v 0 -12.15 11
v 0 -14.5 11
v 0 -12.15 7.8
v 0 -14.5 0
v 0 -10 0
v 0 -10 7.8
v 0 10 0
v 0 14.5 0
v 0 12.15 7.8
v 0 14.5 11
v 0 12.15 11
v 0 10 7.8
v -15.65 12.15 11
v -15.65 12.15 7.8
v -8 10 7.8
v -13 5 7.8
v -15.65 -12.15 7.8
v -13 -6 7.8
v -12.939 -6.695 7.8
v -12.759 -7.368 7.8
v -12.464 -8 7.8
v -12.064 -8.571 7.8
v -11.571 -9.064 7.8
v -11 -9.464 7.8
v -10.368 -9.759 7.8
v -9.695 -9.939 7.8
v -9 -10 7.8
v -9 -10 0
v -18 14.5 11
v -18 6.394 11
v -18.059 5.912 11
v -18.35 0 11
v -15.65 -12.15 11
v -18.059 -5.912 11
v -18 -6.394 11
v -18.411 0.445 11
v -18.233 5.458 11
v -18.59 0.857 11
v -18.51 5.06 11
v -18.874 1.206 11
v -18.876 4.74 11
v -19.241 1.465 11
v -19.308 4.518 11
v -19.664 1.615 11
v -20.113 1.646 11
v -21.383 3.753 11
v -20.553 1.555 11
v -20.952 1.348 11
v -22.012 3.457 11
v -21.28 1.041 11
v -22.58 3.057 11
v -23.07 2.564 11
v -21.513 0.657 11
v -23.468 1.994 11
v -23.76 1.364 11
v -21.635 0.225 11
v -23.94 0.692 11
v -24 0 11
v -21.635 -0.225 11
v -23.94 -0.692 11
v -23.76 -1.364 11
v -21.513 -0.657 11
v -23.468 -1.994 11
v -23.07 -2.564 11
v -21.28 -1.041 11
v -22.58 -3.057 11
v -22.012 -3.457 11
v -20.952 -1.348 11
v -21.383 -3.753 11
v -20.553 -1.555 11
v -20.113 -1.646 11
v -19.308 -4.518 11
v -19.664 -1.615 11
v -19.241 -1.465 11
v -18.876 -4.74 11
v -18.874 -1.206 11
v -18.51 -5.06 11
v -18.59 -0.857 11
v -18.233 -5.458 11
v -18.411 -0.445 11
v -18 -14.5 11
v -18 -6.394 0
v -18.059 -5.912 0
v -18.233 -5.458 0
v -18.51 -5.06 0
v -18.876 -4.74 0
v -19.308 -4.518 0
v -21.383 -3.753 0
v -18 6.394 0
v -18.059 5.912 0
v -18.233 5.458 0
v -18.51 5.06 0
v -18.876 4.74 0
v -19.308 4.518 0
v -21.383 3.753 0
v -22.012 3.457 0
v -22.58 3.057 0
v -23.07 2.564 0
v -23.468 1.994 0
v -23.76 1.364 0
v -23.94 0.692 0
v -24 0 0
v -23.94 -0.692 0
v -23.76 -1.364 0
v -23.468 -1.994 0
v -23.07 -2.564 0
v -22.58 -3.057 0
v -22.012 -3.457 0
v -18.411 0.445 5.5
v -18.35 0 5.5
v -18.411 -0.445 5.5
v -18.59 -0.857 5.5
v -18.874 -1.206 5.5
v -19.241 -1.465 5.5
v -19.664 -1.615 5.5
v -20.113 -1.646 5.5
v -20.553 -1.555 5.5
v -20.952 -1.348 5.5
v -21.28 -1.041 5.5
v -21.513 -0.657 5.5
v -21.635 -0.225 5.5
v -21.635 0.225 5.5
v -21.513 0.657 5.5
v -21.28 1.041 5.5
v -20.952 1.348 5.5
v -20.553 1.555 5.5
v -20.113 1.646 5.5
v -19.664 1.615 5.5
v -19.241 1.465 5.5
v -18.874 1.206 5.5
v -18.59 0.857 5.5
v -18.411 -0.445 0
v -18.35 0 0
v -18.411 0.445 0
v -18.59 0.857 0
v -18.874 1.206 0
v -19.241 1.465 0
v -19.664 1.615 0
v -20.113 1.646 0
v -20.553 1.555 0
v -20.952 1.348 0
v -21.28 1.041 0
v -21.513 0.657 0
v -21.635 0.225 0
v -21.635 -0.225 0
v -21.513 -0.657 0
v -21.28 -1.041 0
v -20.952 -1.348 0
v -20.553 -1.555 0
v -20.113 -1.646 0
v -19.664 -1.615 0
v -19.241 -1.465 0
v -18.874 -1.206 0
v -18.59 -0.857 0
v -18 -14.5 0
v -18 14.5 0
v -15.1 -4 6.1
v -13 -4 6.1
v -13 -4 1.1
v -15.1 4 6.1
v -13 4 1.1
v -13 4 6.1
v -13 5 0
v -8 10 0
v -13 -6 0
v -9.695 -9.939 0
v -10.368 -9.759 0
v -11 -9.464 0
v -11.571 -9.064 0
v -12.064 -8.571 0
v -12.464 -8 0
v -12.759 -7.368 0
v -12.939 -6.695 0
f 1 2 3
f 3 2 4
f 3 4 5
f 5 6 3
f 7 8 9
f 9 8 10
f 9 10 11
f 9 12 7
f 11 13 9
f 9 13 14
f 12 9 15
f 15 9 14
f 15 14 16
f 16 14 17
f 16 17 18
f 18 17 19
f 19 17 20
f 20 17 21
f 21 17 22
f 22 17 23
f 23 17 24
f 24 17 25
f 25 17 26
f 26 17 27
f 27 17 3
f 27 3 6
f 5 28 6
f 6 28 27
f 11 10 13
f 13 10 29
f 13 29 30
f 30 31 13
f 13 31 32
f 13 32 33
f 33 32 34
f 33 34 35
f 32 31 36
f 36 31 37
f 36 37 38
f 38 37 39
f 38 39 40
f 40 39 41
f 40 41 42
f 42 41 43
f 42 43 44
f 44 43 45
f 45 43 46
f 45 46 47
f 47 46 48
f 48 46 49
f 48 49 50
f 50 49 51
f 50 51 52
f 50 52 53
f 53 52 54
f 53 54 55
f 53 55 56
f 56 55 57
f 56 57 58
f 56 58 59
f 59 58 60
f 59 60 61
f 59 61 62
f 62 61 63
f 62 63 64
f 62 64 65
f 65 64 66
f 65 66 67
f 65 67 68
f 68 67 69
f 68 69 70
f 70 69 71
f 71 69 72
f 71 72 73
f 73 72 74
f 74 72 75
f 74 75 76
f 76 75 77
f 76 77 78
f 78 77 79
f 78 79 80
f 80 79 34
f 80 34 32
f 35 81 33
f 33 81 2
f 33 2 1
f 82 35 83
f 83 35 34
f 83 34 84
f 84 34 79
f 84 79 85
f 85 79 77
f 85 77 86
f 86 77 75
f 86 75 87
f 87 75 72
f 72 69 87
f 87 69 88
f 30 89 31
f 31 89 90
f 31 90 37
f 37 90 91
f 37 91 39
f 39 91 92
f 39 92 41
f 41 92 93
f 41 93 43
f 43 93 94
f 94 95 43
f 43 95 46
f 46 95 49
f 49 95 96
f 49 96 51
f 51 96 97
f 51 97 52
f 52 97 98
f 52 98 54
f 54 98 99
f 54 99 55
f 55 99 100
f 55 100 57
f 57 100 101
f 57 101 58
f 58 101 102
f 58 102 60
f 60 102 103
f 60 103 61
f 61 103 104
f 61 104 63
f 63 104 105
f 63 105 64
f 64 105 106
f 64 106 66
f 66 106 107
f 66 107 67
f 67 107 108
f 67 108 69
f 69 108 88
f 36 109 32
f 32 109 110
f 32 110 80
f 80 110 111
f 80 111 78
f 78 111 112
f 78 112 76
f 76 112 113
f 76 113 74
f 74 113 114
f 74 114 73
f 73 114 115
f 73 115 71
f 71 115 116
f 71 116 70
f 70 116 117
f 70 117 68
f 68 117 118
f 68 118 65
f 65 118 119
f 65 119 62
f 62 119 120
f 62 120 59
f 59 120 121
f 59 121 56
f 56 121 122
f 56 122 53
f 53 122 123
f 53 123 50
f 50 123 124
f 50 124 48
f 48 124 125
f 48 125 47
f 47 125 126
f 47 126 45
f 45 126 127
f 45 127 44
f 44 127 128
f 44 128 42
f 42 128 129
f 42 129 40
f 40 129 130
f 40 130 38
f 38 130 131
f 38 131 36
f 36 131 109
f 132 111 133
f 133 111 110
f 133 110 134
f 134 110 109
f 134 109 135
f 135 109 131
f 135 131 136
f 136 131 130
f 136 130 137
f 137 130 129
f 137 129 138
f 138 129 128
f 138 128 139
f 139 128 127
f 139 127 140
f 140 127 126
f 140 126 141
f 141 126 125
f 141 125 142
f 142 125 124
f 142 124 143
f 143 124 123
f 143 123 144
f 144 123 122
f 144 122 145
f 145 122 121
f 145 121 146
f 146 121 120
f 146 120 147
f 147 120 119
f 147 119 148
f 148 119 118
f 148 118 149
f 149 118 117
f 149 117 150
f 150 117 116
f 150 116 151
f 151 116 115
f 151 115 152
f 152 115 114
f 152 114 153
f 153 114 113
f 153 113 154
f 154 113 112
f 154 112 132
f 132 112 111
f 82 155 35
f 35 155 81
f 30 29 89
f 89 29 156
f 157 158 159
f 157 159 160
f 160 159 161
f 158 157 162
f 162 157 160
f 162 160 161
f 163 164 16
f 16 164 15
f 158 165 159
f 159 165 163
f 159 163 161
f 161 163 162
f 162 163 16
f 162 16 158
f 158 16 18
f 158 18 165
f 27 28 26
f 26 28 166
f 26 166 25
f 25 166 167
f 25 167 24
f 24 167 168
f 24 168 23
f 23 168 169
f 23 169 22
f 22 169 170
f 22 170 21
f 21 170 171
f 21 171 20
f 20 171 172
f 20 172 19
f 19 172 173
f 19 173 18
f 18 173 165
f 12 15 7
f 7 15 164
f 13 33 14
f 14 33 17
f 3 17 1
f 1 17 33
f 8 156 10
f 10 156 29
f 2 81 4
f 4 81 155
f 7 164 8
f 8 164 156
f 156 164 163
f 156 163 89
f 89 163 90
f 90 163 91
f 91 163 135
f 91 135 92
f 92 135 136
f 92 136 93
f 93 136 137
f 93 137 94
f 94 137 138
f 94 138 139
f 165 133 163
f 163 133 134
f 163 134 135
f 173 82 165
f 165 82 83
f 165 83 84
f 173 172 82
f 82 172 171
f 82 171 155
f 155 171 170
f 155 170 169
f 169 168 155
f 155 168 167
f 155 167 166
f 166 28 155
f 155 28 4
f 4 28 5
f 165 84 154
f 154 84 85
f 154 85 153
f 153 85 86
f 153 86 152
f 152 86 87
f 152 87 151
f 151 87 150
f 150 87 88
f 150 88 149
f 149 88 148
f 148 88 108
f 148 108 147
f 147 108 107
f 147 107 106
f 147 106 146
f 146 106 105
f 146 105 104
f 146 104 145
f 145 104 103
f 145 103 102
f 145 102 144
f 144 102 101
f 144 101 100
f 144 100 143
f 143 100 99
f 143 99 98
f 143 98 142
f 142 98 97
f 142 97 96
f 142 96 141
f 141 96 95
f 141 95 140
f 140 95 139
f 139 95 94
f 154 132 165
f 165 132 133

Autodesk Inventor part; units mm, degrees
ref_plane "YZ Plane" through (0, 0, 0) normal (1, 0, 0) x (0, 1, 0)
ref_plane "XZ Plane" through (0, 0, 0) normal (0, 1, 0) x (-1, 0, 0)
ref_plane "XY Plane" through (0, 0, 0) normal (0, 0, 1) x (1, 0, 0)
sketch "Sketch2" plane through (0, 0, 0) normal (0, 0, 1) x (1, 0, 0)
  line L0 (-18, 14.5) -> (18, 14.5)
  line L1 (18, 14.5) -> (18, -14.5)
  line L2 (18, -14.5) -> (-18, -14.5)
  line L3 (-18, -14.5) -> (-18, 14.5)
  line L4 (-18, 14.5) -> (18, -14.5) construction
  line L5 (18, 14.5) -> (-18, -14.5) construction
  point P0 (0, 0)
  dimension "d0" = 29
  dimension "d1" = 36
extrude "Extrusion1" add sketch "Sketch2" along normal blind 11
sketch "Sketch3" plane through (0, 0, 11) normal (0, 0, 1) x (1, 0, 0)
  line L0 (-15.65, 12.15) -> (15.65, 12.15)
  line L1 (15.65, 12.15) -> (15.65, -12.15)
  line L2 (15.65, -12.15) -> (-15.65, -12.15)
  line L3 (-15.65, -12.15) -> (-15.65, 12.15)
  line L4 (-15.65, 12.15) -> (15.65, -12.15) construction
  line L5 (15.65, 12.15) -> (-15.65, -12.15) construction
  point P0 (0, 0)
  dimension "d4" = 31.3
  dimension "d5" = 24.3
extrude "Extrusion2" cut sketch "Sketch3" against normal blind 3.2
sketch "Sketch4" plane through (0, 0, 7.8) normal (0, 0, 1) x (1, 0, 0)
  line L0 (-8, 10) -> (8, 10)
  line L1 (13, 5) -> (13, -6)
  line L2 (9, -10) -> (-9, -10)
  line L3 (-13, -6) -> (-13, 5)
  line L4 (-13, 10) -> (13, -10) construction
  line L5 (13, 10) -> (-13, -10) construction
  line L6 (-13, 5) -> (-8, 10)
  line L7 (8, 10) -> (13, 5)
  arc A0 (-13, -6) -> (-9, -10) centre (-9, -6) ccw
  arc A1 (9, -10) -> (13, -6) centre (9, -6) ccw
  point P0 (0, 0)
  point P1 (-13, -4)
  point P2 (13, -4)
  dimension "d8" = 26
  dimension "d9" = 20
  dimension "d10" = 5
  dimension "d11" = 5
  dimension "d12" = 5
  dimension "d13" = 5
  dimension "d14" = 4
extrude "Extrusion3" cut sketch "Sketch4" against normal through all
sketch "Sketch6" plane through (0, 0, 0) normal (0, 1, 0) x (-1, 0, 0)
  line L0 (13, 7.8) -> (13, 0) projected
  line L1 (13, 6.1) -> (15.1, 6.1)
  line L2 (15.1, 6.1) -> (13, 1.1)
  line L3 (13, 1.1) -> (13, 6.1)
  line L4 (15.65, 7.8) -> (-15.65, 7.8) projected
  line L5 (0, 0) -> (0, 10.1915) construction
  line L6 (-13, 7.8) -> (-13, 0)
  line L7 (-13, 6.1) -> (-15.1, 6.1)
  line L8 (-15.1, 6.1) -> (-13, 1.1)
  line L9 (-13, 1.1) -> (-13, 6.1)
  line L10 (-15.65, 7.8) -> (15.65, 7.8)
  dimension "d23" = 2.1
  dimension "d24" = 5
  dimension "d25" = 1.7
extrude "Extrusion5" cut sketch "Sketch6" along normal mid plane 8
sketch "Sketch7" plane through (0, 0, 11) normal (0, 0, 1) x (1, 0, 0)
  arc A0 (21.3831, -3.7533) -> (21.3831, 3.7533) centre (20, 0) ccw
  line L0 (21.3831, 3.7533) -> (18, 5)
  line L1 (18, 5) -> (18, -5)
  line L2 (13, 5) -> (13, -6) projected
  line L3 (18, -5) -> (21.3831, -3.7533)
  line L4 (0, 20.7674) -> (0, -20.7674) construction
  arc A1 (-21.3831, 3.7533) -> (-21.3831, -3.7533) centre (-20, 0) ccw
  line L5 (-21.3831, 3.7533) -> (-18, 5)
  line L6 (-18, 5) -> (-18, -5)
  line L7 (-18, -5) -> (-21.3831, -3.7533)
  line L8 (18, -14.5) -> (18, 14.5) construction
  circle A2 centre (20, 0) radius 1.65
  circle A3 centre (-20, 0) radius 1.65
  line L9 (0, 0) -> (1.9739, 0) construction
  dimension "d28" = 3.3
  dimension "d29" = 4
  dimension "d30" = 40
  dimension "d31" = 10
extrude "Extrusion6" add sketch "Sketch7" against normal up to surface (11 mm away)
fillet "Fillet1" radius 2 4 edges at (18, -5, 5.5) (18, 5, 5.5) (-18, 5, 5.5) (-18, -5, 5.5)
sketch "Sketch8" plane through (0, 0, 0) normal (1, 0, 0) x (0, 1, 0)
  line L0 (45.1511, -28.2394) -> (-45.1511, -28.2394)
  line L1 (-45.1511, -28.2394) -> (-45.1511, 28.2394)
  line L2 (-45.1511, 28.2394) -> (45.1511, 28.2394)
  line L3 (45.1511, 28.2394) -> (45.1511, -28.2394)
  line L4 (45.1511, -28.2394) -> (-45.1511, 28.2394) construction
  line L5 (-45.1511, -28.2394) -> (45.1511, 28.2394) construction
  point P0 (0, 0)
extrude "Extrusion7" cut sketch "Sketch8" along normal through all
equation "\"d11\" = d10"
equation "\"d12\" = d10"
equation "\"d13\" = d12"
properties part number "power_signal_socket_fixed2" material "Acetal Resin, Black"
